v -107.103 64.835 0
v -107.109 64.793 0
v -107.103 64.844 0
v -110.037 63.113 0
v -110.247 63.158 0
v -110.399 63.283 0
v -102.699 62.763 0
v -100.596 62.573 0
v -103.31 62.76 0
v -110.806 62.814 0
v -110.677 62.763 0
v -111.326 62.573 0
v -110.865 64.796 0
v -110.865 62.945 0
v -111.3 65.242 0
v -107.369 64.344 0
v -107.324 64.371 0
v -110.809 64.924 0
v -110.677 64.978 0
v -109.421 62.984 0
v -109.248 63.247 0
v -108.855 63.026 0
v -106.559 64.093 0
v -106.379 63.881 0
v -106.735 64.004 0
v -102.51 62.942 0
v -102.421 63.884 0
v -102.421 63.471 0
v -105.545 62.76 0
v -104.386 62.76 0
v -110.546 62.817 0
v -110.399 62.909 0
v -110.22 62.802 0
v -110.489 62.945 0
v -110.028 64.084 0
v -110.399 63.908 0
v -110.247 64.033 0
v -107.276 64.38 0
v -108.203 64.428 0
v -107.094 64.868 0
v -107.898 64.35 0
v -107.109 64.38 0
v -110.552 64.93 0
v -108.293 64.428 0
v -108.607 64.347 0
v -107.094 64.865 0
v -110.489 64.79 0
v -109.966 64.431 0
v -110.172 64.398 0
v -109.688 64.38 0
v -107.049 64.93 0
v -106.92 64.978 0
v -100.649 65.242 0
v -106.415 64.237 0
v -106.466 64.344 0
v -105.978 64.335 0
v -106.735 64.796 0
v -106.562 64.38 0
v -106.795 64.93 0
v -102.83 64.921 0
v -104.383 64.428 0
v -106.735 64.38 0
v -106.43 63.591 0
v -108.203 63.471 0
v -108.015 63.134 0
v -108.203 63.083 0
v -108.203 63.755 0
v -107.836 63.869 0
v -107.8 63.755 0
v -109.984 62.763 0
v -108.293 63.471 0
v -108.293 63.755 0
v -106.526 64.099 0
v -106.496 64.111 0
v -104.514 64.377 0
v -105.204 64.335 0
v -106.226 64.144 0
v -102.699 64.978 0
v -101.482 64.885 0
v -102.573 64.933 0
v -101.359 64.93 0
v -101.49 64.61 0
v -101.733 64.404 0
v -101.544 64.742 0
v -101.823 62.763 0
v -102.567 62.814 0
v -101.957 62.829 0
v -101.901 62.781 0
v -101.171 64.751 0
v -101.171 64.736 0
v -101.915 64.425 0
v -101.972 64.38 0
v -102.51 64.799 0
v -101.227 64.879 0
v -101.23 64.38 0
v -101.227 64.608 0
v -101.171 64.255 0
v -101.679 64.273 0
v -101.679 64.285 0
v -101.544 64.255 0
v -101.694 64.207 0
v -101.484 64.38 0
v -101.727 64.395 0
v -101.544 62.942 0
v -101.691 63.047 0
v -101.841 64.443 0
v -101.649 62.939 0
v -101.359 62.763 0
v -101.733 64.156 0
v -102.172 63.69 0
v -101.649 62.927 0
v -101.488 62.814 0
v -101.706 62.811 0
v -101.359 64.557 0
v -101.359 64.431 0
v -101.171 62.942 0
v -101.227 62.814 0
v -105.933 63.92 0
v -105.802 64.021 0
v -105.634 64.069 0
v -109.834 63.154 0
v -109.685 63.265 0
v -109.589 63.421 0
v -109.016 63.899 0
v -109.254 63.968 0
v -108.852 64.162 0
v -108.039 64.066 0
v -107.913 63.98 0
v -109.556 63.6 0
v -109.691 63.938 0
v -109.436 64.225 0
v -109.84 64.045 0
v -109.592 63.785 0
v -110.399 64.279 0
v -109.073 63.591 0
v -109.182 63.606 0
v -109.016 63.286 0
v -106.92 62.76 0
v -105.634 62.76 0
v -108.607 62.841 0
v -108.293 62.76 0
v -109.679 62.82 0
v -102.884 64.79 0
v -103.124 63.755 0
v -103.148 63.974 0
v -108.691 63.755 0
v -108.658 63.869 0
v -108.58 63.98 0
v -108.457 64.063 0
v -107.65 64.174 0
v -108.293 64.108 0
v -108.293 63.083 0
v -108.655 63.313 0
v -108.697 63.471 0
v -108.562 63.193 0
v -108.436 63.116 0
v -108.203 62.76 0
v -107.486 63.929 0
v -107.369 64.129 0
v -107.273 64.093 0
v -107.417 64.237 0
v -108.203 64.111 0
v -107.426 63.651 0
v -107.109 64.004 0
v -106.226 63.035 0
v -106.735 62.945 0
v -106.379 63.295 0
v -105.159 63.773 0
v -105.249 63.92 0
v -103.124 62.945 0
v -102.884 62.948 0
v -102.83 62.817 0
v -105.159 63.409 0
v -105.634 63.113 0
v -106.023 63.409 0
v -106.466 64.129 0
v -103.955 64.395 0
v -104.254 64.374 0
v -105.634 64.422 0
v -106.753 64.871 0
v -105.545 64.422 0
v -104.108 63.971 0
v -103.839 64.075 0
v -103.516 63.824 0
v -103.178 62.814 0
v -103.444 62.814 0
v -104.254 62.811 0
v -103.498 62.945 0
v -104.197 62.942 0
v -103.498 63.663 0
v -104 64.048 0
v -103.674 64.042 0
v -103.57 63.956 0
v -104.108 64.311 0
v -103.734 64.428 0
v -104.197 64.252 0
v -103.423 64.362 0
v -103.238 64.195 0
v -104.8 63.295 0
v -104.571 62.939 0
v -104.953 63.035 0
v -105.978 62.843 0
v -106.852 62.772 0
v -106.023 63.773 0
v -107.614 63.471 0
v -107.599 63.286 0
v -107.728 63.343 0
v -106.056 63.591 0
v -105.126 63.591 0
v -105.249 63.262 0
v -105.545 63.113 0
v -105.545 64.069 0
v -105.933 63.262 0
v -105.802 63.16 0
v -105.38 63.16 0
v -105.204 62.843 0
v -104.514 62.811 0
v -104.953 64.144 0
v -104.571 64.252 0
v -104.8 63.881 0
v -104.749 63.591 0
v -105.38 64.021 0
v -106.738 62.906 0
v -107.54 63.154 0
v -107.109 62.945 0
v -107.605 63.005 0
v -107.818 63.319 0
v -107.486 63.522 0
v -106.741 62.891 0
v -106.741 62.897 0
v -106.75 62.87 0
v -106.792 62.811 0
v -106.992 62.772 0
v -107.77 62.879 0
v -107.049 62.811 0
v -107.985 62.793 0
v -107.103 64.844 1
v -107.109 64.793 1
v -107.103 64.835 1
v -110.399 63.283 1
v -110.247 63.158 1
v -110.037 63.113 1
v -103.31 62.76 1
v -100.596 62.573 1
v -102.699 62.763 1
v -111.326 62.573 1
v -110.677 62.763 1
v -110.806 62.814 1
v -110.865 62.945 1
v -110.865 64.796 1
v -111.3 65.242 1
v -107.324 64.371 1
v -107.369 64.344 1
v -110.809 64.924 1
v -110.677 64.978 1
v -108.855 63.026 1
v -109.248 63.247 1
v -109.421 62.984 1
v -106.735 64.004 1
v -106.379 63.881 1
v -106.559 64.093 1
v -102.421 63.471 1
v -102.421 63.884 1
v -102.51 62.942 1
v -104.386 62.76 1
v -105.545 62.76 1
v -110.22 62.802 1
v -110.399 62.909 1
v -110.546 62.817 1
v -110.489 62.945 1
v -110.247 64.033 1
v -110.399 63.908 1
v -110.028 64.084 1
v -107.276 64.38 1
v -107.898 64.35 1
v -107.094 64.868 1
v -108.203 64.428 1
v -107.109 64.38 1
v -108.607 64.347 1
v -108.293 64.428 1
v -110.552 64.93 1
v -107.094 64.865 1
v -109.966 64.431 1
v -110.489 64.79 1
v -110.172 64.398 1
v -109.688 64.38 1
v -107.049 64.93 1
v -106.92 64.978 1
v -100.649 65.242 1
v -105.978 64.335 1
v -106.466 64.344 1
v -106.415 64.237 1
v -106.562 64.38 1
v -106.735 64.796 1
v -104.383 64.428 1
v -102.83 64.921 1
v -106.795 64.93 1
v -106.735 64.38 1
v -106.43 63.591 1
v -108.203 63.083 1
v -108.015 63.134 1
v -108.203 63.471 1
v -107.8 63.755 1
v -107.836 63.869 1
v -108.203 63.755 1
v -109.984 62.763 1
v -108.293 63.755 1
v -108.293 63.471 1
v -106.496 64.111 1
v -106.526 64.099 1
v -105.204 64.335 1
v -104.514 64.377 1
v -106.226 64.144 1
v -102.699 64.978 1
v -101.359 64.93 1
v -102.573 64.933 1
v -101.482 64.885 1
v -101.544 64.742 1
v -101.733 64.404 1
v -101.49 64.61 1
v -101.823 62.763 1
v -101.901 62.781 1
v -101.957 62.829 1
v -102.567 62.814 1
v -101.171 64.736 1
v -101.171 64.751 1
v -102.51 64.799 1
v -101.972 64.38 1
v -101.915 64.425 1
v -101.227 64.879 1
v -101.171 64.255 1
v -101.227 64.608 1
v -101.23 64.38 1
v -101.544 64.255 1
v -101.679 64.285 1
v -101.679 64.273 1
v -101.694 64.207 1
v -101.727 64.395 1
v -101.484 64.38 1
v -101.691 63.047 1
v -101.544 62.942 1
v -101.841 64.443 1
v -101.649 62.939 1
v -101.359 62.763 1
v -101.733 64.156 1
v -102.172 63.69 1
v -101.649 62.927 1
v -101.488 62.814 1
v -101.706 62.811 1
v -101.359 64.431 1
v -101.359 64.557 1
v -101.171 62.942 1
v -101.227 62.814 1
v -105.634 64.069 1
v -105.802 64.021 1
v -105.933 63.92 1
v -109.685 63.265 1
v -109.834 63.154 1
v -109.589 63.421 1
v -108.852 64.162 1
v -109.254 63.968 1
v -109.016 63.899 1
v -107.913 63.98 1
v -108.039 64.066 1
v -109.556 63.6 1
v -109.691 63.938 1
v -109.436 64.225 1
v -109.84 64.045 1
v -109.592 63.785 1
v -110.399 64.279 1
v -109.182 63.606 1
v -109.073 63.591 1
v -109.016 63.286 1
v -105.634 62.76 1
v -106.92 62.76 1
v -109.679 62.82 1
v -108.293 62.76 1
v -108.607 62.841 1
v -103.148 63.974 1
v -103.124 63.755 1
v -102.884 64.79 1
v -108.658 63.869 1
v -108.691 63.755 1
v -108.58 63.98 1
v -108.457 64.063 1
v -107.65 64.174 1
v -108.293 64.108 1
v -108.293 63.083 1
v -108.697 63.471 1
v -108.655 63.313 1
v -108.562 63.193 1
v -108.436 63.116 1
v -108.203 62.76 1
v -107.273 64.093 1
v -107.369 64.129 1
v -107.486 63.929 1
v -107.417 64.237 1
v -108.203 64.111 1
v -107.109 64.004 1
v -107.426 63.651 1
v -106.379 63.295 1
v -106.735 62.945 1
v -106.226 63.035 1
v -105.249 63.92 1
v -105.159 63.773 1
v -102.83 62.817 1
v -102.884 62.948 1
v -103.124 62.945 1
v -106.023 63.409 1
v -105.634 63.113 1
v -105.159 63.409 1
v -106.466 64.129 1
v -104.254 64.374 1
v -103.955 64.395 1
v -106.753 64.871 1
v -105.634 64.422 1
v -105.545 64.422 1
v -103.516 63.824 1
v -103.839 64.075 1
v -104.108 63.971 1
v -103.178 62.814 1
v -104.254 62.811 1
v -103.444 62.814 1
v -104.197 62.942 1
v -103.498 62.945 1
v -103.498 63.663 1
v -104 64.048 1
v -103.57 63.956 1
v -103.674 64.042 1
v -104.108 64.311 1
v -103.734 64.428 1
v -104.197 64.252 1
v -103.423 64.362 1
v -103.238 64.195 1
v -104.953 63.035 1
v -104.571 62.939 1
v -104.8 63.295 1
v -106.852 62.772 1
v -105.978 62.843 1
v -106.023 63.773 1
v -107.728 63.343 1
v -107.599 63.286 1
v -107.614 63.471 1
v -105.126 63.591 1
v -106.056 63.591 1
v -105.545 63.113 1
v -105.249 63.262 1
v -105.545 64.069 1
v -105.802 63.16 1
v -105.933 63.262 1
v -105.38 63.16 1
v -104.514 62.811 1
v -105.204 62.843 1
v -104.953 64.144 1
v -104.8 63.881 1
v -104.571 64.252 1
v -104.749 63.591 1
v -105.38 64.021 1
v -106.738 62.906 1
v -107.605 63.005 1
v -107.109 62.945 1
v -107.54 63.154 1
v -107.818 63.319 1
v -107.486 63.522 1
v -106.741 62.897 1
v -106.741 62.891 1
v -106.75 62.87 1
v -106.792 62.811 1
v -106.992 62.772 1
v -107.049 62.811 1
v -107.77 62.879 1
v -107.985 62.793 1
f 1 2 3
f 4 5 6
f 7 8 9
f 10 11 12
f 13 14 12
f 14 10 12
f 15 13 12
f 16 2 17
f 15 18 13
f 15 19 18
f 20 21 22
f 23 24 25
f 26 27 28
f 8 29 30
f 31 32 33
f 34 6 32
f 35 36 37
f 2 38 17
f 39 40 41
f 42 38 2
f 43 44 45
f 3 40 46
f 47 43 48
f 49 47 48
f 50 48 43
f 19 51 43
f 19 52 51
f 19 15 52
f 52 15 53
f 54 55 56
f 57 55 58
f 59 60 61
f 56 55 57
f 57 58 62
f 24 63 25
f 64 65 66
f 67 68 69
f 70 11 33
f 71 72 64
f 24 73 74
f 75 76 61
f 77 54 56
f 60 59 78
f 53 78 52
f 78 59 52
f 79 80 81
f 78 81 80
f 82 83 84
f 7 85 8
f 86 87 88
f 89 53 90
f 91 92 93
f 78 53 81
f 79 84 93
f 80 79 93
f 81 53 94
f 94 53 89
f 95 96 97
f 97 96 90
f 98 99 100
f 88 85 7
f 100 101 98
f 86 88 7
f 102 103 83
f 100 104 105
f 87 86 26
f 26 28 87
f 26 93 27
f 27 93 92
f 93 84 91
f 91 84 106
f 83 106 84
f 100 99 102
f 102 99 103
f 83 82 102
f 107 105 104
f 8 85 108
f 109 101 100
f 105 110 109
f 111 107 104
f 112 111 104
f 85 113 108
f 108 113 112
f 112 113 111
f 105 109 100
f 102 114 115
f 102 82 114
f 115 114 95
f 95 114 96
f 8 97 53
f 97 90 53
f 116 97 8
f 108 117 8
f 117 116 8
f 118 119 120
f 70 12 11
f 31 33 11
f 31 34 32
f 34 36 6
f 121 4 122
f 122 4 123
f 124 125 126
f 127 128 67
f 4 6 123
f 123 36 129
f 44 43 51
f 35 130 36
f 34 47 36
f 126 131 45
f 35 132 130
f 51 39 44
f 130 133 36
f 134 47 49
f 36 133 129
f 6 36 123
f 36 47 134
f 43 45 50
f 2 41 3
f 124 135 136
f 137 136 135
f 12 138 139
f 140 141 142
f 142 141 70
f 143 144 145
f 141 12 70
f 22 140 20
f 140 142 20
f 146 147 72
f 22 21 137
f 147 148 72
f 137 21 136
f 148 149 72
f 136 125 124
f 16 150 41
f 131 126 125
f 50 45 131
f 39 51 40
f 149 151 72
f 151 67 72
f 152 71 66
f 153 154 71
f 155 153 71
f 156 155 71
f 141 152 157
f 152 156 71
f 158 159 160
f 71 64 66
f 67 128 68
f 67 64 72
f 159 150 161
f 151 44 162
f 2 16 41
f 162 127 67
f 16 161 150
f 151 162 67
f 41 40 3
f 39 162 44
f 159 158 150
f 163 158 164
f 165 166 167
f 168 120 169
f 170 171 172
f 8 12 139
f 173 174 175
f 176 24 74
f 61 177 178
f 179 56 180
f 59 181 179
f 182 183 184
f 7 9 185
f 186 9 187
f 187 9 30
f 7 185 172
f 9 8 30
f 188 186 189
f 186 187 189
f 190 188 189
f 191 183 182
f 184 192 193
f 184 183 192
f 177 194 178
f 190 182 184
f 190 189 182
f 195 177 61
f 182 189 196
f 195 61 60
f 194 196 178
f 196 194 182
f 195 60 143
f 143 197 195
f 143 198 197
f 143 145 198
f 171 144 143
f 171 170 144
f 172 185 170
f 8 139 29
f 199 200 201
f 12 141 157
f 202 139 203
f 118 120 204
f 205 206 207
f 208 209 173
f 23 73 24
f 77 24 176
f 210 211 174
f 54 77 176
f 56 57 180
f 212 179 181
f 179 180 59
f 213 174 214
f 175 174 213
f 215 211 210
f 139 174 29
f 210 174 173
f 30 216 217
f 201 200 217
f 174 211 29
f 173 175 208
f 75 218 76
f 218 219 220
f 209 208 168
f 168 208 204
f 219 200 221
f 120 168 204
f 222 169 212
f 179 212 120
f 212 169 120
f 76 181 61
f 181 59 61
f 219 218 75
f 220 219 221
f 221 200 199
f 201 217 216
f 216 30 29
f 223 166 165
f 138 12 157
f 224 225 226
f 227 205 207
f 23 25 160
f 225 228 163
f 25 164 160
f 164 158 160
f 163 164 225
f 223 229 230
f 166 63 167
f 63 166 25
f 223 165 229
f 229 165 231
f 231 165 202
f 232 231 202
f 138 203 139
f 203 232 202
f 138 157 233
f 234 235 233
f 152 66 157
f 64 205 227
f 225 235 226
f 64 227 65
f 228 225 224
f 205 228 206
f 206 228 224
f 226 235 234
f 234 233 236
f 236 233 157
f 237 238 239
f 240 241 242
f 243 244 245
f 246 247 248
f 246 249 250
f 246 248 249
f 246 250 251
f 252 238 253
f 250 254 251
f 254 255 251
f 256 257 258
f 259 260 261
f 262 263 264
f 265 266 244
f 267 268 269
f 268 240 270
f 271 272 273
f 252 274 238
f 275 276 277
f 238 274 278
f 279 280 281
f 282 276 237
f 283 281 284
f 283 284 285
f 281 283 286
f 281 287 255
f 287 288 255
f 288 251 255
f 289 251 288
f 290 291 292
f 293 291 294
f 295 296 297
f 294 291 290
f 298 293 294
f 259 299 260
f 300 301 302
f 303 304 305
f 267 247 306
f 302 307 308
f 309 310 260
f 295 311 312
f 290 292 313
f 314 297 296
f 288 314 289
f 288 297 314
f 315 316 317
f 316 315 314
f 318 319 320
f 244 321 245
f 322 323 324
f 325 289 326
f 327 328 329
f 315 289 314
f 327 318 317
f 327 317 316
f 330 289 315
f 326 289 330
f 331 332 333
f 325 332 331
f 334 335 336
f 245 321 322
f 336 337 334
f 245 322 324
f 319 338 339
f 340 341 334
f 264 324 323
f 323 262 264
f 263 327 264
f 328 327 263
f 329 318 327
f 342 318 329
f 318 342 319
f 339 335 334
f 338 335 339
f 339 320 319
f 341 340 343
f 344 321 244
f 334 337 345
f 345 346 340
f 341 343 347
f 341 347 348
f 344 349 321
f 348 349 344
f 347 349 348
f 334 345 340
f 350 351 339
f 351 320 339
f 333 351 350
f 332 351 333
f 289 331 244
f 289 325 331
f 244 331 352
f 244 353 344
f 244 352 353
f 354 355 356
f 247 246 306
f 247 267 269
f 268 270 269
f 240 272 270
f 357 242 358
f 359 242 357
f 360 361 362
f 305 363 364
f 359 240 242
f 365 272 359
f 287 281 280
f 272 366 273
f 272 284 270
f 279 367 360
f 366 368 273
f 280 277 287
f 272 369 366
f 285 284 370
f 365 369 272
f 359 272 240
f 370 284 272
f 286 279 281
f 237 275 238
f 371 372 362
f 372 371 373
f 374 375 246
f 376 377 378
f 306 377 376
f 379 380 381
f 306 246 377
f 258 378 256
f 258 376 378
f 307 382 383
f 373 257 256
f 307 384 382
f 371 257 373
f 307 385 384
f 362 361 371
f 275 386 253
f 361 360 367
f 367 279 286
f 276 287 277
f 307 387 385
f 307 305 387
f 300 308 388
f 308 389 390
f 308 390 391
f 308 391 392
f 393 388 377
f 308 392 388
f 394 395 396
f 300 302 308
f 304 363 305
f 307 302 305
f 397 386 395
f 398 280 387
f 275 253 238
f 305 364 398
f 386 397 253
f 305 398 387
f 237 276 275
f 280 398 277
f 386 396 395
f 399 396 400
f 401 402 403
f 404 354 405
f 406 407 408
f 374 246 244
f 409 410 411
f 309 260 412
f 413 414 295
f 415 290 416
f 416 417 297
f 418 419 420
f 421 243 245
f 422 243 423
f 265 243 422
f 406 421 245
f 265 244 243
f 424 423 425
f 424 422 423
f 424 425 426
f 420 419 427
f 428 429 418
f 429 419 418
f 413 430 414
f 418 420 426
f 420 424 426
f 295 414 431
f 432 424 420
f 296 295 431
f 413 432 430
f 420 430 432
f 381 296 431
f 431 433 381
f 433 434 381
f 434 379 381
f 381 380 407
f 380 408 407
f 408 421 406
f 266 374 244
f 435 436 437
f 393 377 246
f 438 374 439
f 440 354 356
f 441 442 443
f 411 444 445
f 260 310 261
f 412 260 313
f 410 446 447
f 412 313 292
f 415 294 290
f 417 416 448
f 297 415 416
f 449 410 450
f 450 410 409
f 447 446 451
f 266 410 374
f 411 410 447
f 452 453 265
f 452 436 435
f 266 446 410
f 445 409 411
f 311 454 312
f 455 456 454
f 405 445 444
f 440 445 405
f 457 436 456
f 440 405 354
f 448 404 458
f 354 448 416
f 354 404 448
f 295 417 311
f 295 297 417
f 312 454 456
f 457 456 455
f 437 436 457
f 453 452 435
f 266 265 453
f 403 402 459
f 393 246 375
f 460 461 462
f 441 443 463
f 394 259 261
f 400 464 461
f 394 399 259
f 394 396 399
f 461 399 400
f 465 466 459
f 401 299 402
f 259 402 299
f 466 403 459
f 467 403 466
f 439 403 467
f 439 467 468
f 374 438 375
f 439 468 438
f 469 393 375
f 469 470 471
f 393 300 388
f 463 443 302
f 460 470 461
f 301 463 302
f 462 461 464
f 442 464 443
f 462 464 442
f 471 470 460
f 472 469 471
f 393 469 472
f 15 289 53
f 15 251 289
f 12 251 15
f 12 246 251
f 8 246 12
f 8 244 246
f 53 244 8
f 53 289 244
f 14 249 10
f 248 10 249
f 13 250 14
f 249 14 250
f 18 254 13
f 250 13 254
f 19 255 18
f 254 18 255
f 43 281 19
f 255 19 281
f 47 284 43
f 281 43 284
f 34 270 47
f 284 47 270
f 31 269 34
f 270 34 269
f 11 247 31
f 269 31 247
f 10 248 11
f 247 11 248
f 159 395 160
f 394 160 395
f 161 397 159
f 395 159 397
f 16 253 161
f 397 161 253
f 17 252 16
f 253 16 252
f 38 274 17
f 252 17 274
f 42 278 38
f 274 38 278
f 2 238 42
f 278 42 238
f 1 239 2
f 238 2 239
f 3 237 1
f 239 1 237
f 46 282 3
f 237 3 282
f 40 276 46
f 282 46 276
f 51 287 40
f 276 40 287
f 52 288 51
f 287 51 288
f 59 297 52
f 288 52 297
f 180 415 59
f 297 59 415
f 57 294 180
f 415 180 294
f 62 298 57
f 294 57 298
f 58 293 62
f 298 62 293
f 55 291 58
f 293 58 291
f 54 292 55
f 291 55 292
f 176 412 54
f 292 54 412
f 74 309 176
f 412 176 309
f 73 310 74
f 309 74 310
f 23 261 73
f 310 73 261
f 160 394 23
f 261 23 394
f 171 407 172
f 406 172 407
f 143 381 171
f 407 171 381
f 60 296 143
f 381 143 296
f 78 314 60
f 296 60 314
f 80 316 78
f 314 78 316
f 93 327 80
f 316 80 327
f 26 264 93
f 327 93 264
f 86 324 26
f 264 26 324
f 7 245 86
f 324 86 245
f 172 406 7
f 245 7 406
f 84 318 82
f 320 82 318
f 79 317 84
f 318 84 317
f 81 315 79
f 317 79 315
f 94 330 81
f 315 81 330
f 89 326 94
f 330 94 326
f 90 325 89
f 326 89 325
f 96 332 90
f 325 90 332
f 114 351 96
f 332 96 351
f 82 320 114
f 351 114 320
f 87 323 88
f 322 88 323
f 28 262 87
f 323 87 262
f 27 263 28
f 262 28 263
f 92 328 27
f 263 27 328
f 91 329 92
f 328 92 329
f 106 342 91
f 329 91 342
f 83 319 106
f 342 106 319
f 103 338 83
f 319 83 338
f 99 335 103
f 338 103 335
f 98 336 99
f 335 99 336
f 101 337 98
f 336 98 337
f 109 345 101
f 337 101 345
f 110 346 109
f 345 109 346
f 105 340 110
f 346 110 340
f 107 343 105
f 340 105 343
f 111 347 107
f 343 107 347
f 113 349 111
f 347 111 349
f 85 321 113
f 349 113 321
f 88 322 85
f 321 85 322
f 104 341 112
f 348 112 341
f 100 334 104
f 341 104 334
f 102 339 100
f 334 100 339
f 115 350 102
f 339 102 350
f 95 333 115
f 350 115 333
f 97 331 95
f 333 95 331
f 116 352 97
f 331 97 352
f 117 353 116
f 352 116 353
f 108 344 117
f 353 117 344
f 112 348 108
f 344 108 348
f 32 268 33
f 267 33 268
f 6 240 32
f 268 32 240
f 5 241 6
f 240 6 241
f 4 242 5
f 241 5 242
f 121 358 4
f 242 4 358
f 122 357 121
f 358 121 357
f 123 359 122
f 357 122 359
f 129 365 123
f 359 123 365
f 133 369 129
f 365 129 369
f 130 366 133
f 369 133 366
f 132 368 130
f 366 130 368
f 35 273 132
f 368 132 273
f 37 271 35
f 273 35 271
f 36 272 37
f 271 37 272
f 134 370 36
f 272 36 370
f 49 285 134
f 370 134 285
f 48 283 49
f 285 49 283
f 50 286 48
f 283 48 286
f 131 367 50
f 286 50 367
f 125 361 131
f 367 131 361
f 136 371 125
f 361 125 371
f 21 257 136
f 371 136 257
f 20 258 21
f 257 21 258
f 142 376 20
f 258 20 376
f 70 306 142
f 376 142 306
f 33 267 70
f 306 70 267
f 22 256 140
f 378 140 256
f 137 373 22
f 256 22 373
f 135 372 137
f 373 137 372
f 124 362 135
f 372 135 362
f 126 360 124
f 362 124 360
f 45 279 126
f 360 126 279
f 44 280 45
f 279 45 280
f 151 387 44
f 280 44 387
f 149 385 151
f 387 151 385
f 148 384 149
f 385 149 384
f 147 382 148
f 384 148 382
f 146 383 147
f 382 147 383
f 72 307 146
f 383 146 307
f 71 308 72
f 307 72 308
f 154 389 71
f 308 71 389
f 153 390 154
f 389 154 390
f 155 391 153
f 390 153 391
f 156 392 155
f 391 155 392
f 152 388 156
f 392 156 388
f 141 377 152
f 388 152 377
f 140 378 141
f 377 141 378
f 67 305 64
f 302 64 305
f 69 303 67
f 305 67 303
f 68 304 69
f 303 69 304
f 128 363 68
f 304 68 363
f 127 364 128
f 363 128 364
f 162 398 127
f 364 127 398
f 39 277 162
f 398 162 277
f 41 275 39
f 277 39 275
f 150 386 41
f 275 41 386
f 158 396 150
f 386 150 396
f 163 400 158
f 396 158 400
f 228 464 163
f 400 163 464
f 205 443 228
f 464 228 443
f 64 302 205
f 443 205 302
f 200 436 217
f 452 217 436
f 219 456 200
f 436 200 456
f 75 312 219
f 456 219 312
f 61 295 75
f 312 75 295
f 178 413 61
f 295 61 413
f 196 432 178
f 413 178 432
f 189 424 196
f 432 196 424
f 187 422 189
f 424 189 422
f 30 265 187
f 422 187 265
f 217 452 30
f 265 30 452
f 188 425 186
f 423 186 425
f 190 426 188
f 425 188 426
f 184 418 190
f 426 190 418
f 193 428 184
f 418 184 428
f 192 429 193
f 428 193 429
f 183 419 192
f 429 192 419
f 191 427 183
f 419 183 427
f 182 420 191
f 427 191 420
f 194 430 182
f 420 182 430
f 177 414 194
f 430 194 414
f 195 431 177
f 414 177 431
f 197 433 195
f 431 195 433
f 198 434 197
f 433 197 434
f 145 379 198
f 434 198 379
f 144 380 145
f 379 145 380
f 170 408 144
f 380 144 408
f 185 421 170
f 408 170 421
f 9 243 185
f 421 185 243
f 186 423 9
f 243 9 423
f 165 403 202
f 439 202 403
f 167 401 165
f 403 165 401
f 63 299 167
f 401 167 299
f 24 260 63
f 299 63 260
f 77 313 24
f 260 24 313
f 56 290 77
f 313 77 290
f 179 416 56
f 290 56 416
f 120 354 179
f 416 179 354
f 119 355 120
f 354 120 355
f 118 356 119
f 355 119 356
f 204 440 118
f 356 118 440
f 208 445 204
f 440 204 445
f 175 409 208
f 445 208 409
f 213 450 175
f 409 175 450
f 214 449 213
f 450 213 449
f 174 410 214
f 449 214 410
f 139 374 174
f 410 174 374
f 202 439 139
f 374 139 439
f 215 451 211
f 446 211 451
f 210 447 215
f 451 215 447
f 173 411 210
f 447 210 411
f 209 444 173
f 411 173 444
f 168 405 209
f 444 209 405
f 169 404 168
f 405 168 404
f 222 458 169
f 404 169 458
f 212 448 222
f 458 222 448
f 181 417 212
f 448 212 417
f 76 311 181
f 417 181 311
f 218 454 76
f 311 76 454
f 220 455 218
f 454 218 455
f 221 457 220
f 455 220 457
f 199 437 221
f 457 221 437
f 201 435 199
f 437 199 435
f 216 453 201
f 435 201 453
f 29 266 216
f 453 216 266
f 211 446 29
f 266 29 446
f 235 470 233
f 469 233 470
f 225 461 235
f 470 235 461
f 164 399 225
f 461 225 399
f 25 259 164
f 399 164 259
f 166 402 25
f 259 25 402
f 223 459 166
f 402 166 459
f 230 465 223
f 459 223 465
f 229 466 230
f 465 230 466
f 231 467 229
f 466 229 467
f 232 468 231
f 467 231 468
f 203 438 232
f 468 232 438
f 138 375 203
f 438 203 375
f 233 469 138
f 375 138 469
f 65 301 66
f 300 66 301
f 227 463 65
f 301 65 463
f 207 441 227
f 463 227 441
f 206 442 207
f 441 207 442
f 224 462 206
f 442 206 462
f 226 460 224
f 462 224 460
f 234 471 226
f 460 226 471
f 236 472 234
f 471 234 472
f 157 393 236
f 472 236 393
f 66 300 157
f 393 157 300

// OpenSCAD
linear_extrude(height=1) rect29();

module rect29()
    polygon(
        points=
            [[-111.3, 65.242], [-111.326, 62.573], [-100.596, 62.573], [-100.649, 65.242], [-110.677, 64.978], [-110.552, 64.93], [-110.489, 64.79], [-110.489, 62.945], [-110.546, 62.817], [-110.677, 62.763], [-110.806, 62.814], [-110.865, 62.945], [-110.865, 64.796], [-110.809, 64.924], [-110.677, 64.978], [-106.92, 64.978], [-106.795, 64.93], [-106.753, 64.871], [-106.735, 64.796], [-106.735, 64.38], [-106.562, 64.38], [-106.466, 64.344], [-106.415, 64.237], [-106.466, 64.129], [-106.496, 64.111], [-106.526, 64.099], [-106.559, 64.093], [-106.735, 64.093], [-107.109, 64.093], [-107.273, 64.093], [-107.369, 64.129], [-107.417, 64.237], [-107.369, 64.344], [-107.324, 64.371], [-107.276, 64.38], [-107.109, 64.38], [-107.109, 64.793], [-107.103, 64.835], [-107.103, 64.844], [-107.1, 64.85], [-107.1, 64.853], [-107.097, 64.859], [-107.094, 64.865], [-107.094, 64.868], [-107.049, 64.93], [-106.92, 64.978], [-102.699, 64.978], [-102.573, 64.933], [-102.51, 64.799], [-102.51, 62.942], [-102.567, 62.814], [-102.699, 62.763], [-102.83, 62.817], [-102.884, 62.948], [-102.884, 64.79], [-102.83, 64.921], [-102.699, 64.978], [-101.359, 64.93], [-101.227, 64.879], [-101.171, 64.751], [-101.171, 64.736], [-101.227, 64.608], [-101.359, 64.557], [-101.49, 64.61], [-101.544, 64.742], [-101.482, 64.885], [-101.359, 64.93], [-101.841, 64.443], [-101.733, 64.404], [-101.727, 64.395], [-101.679, 64.285], [-101.679, 64.273], [-101.694, 64.207], [-101.733, 64.156], [-102.172, 63.69], [-101.691, 63.047], [-101.649, 62.939], [-101.649, 62.927], [-101.706, 62.811], [-101.823, 62.763], [-101.901, 62.781], [-101.957, 62.829], [-101.966, 62.841], [-102.421, 63.471], [-102.421, 63.884], [-101.972, 64.38], [-101.915, 64.425], [-101.841, 64.443], [-109.966, 64.431], [-109.688, 64.38], [-109.436, 64.225], [-109.254, 63.968], [-109.182, 63.606], [-109.248, 63.247], [-109.421, 62.984], [-109.679, 62.82], [-109.984, 62.763], [-110.22, 62.802], [-110.399, 62.909], [-110.399, 63.283], [-110.247, 63.158], [-110.037, 63.113], [-109.834, 63.154], [-109.685, 63.265], [-109.589, 63.421], [-109.556, 63.6], [-109.592, 63.785], [-109.691, 63.938], [-109.84, 64.045], [-110.028, 64.084], [-110.247, 64.033], [-110.399, 63.908], [-110.399, 64.279], [-110.172, 64.398], [-109.966, 64.431], [-101.359, 64.431], [-101.23, 64.38], [-101.171, 64.255], [-101.171, 62.942], [-101.227, 62.814], [-101.359, 62.763], [-101.488, 62.814], [-101.544, 62.942], [-101.544, 64.255], [-101.484, 64.38], [-108.293, 64.428], [-108.293, 64.108], [-108.457, 64.063], [-108.58, 63.98], [-108.658, 63.869], [-108.691, 63.755], [-108.293, 63.755], [-108.293, 63.471], [-108.697, 63.471], [-108.655, 63.313], [-108.562, 63.193], [-108.436, 63.116], [-108.293, 63.083], [-108.293, 62.76], [-108.607, 62.841], [-108.855, 63.026], [-109.016, 63.286], [-109.073, 63.591], [-109.016, 63.899], [-108.852, 64.162], [-108.607, 64.347], [-108.293, 64.428], [-108.203, 64.428], [-107.898, 64.35], [-107.65, 64.174], [-107.486, 63.929], [-107.426, 63.651], [-107.486, 63.522], [-107.614, 63.471], [-108.203, 63.471], [-108.203, 63.755], [-107.8, 63.755], [-107.836, 63.869], [-107.913, 63.98], [-108.039, 64.066], [-108.203, 64.111], [-104.383, 64.428], [-104.254, 64.374], [-104.197, 64.252], [-104.197, 62.954], [-104.197, 62.942], [-104.254, 62.811], [-104.386, 62.76], [-104.514, 62.811], [-104.571, 62.939], [-104.571, 64.252], [-104.514, 64.377], [-104.383, 64.428], [-103.734, 64.428], [-103.423, 64.362], [-103.238, 64.195], [-103.148, 63.974], [-103.124, 63.755], [-103.124, 62.945], [-103.178, 62.814], [-103.31, 62.76], [-103.444, 62.814], [-103.498, 62.945], [-103.498, 63.663], [-103.516, 63.824], [-103.57, 63.956], [-103.674, 64.042], [-103.839, 64.075], [-104.0, 64.048], [-104.108, 63.971], [-104.108, 64.311], [-103.955, 64.395], [-103.734, 64.428], [-105.634, 64.422], [-105.634, 64.069], [-105.802, 64.021], [-105.933, 63.92], [-106.023, 63.773], [-106.056, 63.591], [-106.023, 63.409], [-105.933, 63.262], [-105.802, 63.16], [-105.634, 63.113], [-105.634, 62.76], [-105.978, 62.843], [-106.226, 63.035], [-106.379, 63.295], [-106.43, 63.591], [-106.379, 63.881], [-106.226, 64.144], [-105.978, 64.335], [-105.634, 64.422], [-105.545, 64.422], [-105.204, 64.335], [-104.953, 64.144], [-104.8, 63.881], [-104.749, 63.591], [-104.8, 63.295], [-104.953, 63.035], [-105.204, 62.843], [-105.545, 62.76], [-105.545, 63.113], [-105.38, 63.16], [-105.249, 63.262], [-105.159, 63.409], [-105.126, 63.591], [-105.159, 63.773], [-105.249, 63.92], [-105.38, 64.021], [-105.545, 64.069], [-107.109, 64.004], [-106.735, 64.004], [-106.735, 62.945], [-106.738, 62.906], [-106.741, 62.897], [-106.741, 62.891], [-106.744, 62.885], [-106.747, 62.879], [-106.747, 62.876], [-106.75, 62.87], [-106.792, 62.811], [-106.852, 62.772], [-106.92, 62.76], [-106.992, 62.772], [-107.049, 62.811], [-107.109, 62.945], [-107.728, 63.343], [-107.599, 63.286], [-107.54, 63.154], [-107.605, 63.005], [-107.77, 62.879], [-107.985, 62.793], [-108.203, 62.76], [-108.203, 63.083], [-108.015, 63.134], [-107.886, 63.256], [-107.88, 63.262], [-107.818, 63.319], [-107.728, 63.343]],
        paths=
            [[0, 1, 2, 3, 0], [4, 5, 6, 7, 8, 9, 10, 11, 12, 13, 14, 4], [15, 16, 17, 18, 19, 20, 21, 22, 23, 24, 25, 26, 27, 28, 29, 30, 31, 32, 33, 34, 35, 36, 37, 38, 39, 40, 41, 42, 43, 44, 45, 15], [46, 47, 48, 49, 50, 51, 52, 53, 54, 55, 56, 46], [57, 58, 59, 60, 61, 62, 63, 64, 65, 66, 57], [67, 68, 69, 70, 71, 72, 73, 74, 75, 76, 77, 78, 79, 80, 81, 82, 83, 84, 85, 86, 87, 67], [88, 89, 90, 91, 92, 93, 94, 95, 96, 97, 98, 99, 100, 101, 102, 103, 104, 105, 106, 107, 108, 109, 110, 111, 112, 113, 114, 88], [115, 116, 117, 118, 119, 120, 121, 122, 123, 124, 115, 115], [125, 126, 127, 128, 129, 130, 131, 132, 133, 134, 135, 136, 137, 138, 139, 140, 141, 142, 143, 144, 145, 146, 125], [147, 148, 149, 150, 151, 152, 153, 154, 155, 156, 157, 158, 159, 160, 147], [161, 162, 163, 164, 165, 166, 167, 168, 169, 170, 171, 172, 161], [173, 174, 175, 176, 177, 178, 179, 180, 181, 182, 183, 184, 185, 186, 187, 188, 189, 190, 191, 192, 173], [193, 194, 195, 196, 197, 198, 199, 200, 201, 202, 203, 204, 205, 206, 207, 208, 209, 210, 211, 193], [212, 213, 214, 215, 216, 217, 218, 219, 220, 221, 222, 223, 224, 225, 226, 227, 228, 229, 212], [230, 231, 232, 233, 234, 235, 236, 237, 238, 239, 240, 241, 242, 243, 244, 245, 230], [246, 247, 248, 249, 250, 251, 252, 253, 254, 255, 256, 257, 258, 246]]
    );
